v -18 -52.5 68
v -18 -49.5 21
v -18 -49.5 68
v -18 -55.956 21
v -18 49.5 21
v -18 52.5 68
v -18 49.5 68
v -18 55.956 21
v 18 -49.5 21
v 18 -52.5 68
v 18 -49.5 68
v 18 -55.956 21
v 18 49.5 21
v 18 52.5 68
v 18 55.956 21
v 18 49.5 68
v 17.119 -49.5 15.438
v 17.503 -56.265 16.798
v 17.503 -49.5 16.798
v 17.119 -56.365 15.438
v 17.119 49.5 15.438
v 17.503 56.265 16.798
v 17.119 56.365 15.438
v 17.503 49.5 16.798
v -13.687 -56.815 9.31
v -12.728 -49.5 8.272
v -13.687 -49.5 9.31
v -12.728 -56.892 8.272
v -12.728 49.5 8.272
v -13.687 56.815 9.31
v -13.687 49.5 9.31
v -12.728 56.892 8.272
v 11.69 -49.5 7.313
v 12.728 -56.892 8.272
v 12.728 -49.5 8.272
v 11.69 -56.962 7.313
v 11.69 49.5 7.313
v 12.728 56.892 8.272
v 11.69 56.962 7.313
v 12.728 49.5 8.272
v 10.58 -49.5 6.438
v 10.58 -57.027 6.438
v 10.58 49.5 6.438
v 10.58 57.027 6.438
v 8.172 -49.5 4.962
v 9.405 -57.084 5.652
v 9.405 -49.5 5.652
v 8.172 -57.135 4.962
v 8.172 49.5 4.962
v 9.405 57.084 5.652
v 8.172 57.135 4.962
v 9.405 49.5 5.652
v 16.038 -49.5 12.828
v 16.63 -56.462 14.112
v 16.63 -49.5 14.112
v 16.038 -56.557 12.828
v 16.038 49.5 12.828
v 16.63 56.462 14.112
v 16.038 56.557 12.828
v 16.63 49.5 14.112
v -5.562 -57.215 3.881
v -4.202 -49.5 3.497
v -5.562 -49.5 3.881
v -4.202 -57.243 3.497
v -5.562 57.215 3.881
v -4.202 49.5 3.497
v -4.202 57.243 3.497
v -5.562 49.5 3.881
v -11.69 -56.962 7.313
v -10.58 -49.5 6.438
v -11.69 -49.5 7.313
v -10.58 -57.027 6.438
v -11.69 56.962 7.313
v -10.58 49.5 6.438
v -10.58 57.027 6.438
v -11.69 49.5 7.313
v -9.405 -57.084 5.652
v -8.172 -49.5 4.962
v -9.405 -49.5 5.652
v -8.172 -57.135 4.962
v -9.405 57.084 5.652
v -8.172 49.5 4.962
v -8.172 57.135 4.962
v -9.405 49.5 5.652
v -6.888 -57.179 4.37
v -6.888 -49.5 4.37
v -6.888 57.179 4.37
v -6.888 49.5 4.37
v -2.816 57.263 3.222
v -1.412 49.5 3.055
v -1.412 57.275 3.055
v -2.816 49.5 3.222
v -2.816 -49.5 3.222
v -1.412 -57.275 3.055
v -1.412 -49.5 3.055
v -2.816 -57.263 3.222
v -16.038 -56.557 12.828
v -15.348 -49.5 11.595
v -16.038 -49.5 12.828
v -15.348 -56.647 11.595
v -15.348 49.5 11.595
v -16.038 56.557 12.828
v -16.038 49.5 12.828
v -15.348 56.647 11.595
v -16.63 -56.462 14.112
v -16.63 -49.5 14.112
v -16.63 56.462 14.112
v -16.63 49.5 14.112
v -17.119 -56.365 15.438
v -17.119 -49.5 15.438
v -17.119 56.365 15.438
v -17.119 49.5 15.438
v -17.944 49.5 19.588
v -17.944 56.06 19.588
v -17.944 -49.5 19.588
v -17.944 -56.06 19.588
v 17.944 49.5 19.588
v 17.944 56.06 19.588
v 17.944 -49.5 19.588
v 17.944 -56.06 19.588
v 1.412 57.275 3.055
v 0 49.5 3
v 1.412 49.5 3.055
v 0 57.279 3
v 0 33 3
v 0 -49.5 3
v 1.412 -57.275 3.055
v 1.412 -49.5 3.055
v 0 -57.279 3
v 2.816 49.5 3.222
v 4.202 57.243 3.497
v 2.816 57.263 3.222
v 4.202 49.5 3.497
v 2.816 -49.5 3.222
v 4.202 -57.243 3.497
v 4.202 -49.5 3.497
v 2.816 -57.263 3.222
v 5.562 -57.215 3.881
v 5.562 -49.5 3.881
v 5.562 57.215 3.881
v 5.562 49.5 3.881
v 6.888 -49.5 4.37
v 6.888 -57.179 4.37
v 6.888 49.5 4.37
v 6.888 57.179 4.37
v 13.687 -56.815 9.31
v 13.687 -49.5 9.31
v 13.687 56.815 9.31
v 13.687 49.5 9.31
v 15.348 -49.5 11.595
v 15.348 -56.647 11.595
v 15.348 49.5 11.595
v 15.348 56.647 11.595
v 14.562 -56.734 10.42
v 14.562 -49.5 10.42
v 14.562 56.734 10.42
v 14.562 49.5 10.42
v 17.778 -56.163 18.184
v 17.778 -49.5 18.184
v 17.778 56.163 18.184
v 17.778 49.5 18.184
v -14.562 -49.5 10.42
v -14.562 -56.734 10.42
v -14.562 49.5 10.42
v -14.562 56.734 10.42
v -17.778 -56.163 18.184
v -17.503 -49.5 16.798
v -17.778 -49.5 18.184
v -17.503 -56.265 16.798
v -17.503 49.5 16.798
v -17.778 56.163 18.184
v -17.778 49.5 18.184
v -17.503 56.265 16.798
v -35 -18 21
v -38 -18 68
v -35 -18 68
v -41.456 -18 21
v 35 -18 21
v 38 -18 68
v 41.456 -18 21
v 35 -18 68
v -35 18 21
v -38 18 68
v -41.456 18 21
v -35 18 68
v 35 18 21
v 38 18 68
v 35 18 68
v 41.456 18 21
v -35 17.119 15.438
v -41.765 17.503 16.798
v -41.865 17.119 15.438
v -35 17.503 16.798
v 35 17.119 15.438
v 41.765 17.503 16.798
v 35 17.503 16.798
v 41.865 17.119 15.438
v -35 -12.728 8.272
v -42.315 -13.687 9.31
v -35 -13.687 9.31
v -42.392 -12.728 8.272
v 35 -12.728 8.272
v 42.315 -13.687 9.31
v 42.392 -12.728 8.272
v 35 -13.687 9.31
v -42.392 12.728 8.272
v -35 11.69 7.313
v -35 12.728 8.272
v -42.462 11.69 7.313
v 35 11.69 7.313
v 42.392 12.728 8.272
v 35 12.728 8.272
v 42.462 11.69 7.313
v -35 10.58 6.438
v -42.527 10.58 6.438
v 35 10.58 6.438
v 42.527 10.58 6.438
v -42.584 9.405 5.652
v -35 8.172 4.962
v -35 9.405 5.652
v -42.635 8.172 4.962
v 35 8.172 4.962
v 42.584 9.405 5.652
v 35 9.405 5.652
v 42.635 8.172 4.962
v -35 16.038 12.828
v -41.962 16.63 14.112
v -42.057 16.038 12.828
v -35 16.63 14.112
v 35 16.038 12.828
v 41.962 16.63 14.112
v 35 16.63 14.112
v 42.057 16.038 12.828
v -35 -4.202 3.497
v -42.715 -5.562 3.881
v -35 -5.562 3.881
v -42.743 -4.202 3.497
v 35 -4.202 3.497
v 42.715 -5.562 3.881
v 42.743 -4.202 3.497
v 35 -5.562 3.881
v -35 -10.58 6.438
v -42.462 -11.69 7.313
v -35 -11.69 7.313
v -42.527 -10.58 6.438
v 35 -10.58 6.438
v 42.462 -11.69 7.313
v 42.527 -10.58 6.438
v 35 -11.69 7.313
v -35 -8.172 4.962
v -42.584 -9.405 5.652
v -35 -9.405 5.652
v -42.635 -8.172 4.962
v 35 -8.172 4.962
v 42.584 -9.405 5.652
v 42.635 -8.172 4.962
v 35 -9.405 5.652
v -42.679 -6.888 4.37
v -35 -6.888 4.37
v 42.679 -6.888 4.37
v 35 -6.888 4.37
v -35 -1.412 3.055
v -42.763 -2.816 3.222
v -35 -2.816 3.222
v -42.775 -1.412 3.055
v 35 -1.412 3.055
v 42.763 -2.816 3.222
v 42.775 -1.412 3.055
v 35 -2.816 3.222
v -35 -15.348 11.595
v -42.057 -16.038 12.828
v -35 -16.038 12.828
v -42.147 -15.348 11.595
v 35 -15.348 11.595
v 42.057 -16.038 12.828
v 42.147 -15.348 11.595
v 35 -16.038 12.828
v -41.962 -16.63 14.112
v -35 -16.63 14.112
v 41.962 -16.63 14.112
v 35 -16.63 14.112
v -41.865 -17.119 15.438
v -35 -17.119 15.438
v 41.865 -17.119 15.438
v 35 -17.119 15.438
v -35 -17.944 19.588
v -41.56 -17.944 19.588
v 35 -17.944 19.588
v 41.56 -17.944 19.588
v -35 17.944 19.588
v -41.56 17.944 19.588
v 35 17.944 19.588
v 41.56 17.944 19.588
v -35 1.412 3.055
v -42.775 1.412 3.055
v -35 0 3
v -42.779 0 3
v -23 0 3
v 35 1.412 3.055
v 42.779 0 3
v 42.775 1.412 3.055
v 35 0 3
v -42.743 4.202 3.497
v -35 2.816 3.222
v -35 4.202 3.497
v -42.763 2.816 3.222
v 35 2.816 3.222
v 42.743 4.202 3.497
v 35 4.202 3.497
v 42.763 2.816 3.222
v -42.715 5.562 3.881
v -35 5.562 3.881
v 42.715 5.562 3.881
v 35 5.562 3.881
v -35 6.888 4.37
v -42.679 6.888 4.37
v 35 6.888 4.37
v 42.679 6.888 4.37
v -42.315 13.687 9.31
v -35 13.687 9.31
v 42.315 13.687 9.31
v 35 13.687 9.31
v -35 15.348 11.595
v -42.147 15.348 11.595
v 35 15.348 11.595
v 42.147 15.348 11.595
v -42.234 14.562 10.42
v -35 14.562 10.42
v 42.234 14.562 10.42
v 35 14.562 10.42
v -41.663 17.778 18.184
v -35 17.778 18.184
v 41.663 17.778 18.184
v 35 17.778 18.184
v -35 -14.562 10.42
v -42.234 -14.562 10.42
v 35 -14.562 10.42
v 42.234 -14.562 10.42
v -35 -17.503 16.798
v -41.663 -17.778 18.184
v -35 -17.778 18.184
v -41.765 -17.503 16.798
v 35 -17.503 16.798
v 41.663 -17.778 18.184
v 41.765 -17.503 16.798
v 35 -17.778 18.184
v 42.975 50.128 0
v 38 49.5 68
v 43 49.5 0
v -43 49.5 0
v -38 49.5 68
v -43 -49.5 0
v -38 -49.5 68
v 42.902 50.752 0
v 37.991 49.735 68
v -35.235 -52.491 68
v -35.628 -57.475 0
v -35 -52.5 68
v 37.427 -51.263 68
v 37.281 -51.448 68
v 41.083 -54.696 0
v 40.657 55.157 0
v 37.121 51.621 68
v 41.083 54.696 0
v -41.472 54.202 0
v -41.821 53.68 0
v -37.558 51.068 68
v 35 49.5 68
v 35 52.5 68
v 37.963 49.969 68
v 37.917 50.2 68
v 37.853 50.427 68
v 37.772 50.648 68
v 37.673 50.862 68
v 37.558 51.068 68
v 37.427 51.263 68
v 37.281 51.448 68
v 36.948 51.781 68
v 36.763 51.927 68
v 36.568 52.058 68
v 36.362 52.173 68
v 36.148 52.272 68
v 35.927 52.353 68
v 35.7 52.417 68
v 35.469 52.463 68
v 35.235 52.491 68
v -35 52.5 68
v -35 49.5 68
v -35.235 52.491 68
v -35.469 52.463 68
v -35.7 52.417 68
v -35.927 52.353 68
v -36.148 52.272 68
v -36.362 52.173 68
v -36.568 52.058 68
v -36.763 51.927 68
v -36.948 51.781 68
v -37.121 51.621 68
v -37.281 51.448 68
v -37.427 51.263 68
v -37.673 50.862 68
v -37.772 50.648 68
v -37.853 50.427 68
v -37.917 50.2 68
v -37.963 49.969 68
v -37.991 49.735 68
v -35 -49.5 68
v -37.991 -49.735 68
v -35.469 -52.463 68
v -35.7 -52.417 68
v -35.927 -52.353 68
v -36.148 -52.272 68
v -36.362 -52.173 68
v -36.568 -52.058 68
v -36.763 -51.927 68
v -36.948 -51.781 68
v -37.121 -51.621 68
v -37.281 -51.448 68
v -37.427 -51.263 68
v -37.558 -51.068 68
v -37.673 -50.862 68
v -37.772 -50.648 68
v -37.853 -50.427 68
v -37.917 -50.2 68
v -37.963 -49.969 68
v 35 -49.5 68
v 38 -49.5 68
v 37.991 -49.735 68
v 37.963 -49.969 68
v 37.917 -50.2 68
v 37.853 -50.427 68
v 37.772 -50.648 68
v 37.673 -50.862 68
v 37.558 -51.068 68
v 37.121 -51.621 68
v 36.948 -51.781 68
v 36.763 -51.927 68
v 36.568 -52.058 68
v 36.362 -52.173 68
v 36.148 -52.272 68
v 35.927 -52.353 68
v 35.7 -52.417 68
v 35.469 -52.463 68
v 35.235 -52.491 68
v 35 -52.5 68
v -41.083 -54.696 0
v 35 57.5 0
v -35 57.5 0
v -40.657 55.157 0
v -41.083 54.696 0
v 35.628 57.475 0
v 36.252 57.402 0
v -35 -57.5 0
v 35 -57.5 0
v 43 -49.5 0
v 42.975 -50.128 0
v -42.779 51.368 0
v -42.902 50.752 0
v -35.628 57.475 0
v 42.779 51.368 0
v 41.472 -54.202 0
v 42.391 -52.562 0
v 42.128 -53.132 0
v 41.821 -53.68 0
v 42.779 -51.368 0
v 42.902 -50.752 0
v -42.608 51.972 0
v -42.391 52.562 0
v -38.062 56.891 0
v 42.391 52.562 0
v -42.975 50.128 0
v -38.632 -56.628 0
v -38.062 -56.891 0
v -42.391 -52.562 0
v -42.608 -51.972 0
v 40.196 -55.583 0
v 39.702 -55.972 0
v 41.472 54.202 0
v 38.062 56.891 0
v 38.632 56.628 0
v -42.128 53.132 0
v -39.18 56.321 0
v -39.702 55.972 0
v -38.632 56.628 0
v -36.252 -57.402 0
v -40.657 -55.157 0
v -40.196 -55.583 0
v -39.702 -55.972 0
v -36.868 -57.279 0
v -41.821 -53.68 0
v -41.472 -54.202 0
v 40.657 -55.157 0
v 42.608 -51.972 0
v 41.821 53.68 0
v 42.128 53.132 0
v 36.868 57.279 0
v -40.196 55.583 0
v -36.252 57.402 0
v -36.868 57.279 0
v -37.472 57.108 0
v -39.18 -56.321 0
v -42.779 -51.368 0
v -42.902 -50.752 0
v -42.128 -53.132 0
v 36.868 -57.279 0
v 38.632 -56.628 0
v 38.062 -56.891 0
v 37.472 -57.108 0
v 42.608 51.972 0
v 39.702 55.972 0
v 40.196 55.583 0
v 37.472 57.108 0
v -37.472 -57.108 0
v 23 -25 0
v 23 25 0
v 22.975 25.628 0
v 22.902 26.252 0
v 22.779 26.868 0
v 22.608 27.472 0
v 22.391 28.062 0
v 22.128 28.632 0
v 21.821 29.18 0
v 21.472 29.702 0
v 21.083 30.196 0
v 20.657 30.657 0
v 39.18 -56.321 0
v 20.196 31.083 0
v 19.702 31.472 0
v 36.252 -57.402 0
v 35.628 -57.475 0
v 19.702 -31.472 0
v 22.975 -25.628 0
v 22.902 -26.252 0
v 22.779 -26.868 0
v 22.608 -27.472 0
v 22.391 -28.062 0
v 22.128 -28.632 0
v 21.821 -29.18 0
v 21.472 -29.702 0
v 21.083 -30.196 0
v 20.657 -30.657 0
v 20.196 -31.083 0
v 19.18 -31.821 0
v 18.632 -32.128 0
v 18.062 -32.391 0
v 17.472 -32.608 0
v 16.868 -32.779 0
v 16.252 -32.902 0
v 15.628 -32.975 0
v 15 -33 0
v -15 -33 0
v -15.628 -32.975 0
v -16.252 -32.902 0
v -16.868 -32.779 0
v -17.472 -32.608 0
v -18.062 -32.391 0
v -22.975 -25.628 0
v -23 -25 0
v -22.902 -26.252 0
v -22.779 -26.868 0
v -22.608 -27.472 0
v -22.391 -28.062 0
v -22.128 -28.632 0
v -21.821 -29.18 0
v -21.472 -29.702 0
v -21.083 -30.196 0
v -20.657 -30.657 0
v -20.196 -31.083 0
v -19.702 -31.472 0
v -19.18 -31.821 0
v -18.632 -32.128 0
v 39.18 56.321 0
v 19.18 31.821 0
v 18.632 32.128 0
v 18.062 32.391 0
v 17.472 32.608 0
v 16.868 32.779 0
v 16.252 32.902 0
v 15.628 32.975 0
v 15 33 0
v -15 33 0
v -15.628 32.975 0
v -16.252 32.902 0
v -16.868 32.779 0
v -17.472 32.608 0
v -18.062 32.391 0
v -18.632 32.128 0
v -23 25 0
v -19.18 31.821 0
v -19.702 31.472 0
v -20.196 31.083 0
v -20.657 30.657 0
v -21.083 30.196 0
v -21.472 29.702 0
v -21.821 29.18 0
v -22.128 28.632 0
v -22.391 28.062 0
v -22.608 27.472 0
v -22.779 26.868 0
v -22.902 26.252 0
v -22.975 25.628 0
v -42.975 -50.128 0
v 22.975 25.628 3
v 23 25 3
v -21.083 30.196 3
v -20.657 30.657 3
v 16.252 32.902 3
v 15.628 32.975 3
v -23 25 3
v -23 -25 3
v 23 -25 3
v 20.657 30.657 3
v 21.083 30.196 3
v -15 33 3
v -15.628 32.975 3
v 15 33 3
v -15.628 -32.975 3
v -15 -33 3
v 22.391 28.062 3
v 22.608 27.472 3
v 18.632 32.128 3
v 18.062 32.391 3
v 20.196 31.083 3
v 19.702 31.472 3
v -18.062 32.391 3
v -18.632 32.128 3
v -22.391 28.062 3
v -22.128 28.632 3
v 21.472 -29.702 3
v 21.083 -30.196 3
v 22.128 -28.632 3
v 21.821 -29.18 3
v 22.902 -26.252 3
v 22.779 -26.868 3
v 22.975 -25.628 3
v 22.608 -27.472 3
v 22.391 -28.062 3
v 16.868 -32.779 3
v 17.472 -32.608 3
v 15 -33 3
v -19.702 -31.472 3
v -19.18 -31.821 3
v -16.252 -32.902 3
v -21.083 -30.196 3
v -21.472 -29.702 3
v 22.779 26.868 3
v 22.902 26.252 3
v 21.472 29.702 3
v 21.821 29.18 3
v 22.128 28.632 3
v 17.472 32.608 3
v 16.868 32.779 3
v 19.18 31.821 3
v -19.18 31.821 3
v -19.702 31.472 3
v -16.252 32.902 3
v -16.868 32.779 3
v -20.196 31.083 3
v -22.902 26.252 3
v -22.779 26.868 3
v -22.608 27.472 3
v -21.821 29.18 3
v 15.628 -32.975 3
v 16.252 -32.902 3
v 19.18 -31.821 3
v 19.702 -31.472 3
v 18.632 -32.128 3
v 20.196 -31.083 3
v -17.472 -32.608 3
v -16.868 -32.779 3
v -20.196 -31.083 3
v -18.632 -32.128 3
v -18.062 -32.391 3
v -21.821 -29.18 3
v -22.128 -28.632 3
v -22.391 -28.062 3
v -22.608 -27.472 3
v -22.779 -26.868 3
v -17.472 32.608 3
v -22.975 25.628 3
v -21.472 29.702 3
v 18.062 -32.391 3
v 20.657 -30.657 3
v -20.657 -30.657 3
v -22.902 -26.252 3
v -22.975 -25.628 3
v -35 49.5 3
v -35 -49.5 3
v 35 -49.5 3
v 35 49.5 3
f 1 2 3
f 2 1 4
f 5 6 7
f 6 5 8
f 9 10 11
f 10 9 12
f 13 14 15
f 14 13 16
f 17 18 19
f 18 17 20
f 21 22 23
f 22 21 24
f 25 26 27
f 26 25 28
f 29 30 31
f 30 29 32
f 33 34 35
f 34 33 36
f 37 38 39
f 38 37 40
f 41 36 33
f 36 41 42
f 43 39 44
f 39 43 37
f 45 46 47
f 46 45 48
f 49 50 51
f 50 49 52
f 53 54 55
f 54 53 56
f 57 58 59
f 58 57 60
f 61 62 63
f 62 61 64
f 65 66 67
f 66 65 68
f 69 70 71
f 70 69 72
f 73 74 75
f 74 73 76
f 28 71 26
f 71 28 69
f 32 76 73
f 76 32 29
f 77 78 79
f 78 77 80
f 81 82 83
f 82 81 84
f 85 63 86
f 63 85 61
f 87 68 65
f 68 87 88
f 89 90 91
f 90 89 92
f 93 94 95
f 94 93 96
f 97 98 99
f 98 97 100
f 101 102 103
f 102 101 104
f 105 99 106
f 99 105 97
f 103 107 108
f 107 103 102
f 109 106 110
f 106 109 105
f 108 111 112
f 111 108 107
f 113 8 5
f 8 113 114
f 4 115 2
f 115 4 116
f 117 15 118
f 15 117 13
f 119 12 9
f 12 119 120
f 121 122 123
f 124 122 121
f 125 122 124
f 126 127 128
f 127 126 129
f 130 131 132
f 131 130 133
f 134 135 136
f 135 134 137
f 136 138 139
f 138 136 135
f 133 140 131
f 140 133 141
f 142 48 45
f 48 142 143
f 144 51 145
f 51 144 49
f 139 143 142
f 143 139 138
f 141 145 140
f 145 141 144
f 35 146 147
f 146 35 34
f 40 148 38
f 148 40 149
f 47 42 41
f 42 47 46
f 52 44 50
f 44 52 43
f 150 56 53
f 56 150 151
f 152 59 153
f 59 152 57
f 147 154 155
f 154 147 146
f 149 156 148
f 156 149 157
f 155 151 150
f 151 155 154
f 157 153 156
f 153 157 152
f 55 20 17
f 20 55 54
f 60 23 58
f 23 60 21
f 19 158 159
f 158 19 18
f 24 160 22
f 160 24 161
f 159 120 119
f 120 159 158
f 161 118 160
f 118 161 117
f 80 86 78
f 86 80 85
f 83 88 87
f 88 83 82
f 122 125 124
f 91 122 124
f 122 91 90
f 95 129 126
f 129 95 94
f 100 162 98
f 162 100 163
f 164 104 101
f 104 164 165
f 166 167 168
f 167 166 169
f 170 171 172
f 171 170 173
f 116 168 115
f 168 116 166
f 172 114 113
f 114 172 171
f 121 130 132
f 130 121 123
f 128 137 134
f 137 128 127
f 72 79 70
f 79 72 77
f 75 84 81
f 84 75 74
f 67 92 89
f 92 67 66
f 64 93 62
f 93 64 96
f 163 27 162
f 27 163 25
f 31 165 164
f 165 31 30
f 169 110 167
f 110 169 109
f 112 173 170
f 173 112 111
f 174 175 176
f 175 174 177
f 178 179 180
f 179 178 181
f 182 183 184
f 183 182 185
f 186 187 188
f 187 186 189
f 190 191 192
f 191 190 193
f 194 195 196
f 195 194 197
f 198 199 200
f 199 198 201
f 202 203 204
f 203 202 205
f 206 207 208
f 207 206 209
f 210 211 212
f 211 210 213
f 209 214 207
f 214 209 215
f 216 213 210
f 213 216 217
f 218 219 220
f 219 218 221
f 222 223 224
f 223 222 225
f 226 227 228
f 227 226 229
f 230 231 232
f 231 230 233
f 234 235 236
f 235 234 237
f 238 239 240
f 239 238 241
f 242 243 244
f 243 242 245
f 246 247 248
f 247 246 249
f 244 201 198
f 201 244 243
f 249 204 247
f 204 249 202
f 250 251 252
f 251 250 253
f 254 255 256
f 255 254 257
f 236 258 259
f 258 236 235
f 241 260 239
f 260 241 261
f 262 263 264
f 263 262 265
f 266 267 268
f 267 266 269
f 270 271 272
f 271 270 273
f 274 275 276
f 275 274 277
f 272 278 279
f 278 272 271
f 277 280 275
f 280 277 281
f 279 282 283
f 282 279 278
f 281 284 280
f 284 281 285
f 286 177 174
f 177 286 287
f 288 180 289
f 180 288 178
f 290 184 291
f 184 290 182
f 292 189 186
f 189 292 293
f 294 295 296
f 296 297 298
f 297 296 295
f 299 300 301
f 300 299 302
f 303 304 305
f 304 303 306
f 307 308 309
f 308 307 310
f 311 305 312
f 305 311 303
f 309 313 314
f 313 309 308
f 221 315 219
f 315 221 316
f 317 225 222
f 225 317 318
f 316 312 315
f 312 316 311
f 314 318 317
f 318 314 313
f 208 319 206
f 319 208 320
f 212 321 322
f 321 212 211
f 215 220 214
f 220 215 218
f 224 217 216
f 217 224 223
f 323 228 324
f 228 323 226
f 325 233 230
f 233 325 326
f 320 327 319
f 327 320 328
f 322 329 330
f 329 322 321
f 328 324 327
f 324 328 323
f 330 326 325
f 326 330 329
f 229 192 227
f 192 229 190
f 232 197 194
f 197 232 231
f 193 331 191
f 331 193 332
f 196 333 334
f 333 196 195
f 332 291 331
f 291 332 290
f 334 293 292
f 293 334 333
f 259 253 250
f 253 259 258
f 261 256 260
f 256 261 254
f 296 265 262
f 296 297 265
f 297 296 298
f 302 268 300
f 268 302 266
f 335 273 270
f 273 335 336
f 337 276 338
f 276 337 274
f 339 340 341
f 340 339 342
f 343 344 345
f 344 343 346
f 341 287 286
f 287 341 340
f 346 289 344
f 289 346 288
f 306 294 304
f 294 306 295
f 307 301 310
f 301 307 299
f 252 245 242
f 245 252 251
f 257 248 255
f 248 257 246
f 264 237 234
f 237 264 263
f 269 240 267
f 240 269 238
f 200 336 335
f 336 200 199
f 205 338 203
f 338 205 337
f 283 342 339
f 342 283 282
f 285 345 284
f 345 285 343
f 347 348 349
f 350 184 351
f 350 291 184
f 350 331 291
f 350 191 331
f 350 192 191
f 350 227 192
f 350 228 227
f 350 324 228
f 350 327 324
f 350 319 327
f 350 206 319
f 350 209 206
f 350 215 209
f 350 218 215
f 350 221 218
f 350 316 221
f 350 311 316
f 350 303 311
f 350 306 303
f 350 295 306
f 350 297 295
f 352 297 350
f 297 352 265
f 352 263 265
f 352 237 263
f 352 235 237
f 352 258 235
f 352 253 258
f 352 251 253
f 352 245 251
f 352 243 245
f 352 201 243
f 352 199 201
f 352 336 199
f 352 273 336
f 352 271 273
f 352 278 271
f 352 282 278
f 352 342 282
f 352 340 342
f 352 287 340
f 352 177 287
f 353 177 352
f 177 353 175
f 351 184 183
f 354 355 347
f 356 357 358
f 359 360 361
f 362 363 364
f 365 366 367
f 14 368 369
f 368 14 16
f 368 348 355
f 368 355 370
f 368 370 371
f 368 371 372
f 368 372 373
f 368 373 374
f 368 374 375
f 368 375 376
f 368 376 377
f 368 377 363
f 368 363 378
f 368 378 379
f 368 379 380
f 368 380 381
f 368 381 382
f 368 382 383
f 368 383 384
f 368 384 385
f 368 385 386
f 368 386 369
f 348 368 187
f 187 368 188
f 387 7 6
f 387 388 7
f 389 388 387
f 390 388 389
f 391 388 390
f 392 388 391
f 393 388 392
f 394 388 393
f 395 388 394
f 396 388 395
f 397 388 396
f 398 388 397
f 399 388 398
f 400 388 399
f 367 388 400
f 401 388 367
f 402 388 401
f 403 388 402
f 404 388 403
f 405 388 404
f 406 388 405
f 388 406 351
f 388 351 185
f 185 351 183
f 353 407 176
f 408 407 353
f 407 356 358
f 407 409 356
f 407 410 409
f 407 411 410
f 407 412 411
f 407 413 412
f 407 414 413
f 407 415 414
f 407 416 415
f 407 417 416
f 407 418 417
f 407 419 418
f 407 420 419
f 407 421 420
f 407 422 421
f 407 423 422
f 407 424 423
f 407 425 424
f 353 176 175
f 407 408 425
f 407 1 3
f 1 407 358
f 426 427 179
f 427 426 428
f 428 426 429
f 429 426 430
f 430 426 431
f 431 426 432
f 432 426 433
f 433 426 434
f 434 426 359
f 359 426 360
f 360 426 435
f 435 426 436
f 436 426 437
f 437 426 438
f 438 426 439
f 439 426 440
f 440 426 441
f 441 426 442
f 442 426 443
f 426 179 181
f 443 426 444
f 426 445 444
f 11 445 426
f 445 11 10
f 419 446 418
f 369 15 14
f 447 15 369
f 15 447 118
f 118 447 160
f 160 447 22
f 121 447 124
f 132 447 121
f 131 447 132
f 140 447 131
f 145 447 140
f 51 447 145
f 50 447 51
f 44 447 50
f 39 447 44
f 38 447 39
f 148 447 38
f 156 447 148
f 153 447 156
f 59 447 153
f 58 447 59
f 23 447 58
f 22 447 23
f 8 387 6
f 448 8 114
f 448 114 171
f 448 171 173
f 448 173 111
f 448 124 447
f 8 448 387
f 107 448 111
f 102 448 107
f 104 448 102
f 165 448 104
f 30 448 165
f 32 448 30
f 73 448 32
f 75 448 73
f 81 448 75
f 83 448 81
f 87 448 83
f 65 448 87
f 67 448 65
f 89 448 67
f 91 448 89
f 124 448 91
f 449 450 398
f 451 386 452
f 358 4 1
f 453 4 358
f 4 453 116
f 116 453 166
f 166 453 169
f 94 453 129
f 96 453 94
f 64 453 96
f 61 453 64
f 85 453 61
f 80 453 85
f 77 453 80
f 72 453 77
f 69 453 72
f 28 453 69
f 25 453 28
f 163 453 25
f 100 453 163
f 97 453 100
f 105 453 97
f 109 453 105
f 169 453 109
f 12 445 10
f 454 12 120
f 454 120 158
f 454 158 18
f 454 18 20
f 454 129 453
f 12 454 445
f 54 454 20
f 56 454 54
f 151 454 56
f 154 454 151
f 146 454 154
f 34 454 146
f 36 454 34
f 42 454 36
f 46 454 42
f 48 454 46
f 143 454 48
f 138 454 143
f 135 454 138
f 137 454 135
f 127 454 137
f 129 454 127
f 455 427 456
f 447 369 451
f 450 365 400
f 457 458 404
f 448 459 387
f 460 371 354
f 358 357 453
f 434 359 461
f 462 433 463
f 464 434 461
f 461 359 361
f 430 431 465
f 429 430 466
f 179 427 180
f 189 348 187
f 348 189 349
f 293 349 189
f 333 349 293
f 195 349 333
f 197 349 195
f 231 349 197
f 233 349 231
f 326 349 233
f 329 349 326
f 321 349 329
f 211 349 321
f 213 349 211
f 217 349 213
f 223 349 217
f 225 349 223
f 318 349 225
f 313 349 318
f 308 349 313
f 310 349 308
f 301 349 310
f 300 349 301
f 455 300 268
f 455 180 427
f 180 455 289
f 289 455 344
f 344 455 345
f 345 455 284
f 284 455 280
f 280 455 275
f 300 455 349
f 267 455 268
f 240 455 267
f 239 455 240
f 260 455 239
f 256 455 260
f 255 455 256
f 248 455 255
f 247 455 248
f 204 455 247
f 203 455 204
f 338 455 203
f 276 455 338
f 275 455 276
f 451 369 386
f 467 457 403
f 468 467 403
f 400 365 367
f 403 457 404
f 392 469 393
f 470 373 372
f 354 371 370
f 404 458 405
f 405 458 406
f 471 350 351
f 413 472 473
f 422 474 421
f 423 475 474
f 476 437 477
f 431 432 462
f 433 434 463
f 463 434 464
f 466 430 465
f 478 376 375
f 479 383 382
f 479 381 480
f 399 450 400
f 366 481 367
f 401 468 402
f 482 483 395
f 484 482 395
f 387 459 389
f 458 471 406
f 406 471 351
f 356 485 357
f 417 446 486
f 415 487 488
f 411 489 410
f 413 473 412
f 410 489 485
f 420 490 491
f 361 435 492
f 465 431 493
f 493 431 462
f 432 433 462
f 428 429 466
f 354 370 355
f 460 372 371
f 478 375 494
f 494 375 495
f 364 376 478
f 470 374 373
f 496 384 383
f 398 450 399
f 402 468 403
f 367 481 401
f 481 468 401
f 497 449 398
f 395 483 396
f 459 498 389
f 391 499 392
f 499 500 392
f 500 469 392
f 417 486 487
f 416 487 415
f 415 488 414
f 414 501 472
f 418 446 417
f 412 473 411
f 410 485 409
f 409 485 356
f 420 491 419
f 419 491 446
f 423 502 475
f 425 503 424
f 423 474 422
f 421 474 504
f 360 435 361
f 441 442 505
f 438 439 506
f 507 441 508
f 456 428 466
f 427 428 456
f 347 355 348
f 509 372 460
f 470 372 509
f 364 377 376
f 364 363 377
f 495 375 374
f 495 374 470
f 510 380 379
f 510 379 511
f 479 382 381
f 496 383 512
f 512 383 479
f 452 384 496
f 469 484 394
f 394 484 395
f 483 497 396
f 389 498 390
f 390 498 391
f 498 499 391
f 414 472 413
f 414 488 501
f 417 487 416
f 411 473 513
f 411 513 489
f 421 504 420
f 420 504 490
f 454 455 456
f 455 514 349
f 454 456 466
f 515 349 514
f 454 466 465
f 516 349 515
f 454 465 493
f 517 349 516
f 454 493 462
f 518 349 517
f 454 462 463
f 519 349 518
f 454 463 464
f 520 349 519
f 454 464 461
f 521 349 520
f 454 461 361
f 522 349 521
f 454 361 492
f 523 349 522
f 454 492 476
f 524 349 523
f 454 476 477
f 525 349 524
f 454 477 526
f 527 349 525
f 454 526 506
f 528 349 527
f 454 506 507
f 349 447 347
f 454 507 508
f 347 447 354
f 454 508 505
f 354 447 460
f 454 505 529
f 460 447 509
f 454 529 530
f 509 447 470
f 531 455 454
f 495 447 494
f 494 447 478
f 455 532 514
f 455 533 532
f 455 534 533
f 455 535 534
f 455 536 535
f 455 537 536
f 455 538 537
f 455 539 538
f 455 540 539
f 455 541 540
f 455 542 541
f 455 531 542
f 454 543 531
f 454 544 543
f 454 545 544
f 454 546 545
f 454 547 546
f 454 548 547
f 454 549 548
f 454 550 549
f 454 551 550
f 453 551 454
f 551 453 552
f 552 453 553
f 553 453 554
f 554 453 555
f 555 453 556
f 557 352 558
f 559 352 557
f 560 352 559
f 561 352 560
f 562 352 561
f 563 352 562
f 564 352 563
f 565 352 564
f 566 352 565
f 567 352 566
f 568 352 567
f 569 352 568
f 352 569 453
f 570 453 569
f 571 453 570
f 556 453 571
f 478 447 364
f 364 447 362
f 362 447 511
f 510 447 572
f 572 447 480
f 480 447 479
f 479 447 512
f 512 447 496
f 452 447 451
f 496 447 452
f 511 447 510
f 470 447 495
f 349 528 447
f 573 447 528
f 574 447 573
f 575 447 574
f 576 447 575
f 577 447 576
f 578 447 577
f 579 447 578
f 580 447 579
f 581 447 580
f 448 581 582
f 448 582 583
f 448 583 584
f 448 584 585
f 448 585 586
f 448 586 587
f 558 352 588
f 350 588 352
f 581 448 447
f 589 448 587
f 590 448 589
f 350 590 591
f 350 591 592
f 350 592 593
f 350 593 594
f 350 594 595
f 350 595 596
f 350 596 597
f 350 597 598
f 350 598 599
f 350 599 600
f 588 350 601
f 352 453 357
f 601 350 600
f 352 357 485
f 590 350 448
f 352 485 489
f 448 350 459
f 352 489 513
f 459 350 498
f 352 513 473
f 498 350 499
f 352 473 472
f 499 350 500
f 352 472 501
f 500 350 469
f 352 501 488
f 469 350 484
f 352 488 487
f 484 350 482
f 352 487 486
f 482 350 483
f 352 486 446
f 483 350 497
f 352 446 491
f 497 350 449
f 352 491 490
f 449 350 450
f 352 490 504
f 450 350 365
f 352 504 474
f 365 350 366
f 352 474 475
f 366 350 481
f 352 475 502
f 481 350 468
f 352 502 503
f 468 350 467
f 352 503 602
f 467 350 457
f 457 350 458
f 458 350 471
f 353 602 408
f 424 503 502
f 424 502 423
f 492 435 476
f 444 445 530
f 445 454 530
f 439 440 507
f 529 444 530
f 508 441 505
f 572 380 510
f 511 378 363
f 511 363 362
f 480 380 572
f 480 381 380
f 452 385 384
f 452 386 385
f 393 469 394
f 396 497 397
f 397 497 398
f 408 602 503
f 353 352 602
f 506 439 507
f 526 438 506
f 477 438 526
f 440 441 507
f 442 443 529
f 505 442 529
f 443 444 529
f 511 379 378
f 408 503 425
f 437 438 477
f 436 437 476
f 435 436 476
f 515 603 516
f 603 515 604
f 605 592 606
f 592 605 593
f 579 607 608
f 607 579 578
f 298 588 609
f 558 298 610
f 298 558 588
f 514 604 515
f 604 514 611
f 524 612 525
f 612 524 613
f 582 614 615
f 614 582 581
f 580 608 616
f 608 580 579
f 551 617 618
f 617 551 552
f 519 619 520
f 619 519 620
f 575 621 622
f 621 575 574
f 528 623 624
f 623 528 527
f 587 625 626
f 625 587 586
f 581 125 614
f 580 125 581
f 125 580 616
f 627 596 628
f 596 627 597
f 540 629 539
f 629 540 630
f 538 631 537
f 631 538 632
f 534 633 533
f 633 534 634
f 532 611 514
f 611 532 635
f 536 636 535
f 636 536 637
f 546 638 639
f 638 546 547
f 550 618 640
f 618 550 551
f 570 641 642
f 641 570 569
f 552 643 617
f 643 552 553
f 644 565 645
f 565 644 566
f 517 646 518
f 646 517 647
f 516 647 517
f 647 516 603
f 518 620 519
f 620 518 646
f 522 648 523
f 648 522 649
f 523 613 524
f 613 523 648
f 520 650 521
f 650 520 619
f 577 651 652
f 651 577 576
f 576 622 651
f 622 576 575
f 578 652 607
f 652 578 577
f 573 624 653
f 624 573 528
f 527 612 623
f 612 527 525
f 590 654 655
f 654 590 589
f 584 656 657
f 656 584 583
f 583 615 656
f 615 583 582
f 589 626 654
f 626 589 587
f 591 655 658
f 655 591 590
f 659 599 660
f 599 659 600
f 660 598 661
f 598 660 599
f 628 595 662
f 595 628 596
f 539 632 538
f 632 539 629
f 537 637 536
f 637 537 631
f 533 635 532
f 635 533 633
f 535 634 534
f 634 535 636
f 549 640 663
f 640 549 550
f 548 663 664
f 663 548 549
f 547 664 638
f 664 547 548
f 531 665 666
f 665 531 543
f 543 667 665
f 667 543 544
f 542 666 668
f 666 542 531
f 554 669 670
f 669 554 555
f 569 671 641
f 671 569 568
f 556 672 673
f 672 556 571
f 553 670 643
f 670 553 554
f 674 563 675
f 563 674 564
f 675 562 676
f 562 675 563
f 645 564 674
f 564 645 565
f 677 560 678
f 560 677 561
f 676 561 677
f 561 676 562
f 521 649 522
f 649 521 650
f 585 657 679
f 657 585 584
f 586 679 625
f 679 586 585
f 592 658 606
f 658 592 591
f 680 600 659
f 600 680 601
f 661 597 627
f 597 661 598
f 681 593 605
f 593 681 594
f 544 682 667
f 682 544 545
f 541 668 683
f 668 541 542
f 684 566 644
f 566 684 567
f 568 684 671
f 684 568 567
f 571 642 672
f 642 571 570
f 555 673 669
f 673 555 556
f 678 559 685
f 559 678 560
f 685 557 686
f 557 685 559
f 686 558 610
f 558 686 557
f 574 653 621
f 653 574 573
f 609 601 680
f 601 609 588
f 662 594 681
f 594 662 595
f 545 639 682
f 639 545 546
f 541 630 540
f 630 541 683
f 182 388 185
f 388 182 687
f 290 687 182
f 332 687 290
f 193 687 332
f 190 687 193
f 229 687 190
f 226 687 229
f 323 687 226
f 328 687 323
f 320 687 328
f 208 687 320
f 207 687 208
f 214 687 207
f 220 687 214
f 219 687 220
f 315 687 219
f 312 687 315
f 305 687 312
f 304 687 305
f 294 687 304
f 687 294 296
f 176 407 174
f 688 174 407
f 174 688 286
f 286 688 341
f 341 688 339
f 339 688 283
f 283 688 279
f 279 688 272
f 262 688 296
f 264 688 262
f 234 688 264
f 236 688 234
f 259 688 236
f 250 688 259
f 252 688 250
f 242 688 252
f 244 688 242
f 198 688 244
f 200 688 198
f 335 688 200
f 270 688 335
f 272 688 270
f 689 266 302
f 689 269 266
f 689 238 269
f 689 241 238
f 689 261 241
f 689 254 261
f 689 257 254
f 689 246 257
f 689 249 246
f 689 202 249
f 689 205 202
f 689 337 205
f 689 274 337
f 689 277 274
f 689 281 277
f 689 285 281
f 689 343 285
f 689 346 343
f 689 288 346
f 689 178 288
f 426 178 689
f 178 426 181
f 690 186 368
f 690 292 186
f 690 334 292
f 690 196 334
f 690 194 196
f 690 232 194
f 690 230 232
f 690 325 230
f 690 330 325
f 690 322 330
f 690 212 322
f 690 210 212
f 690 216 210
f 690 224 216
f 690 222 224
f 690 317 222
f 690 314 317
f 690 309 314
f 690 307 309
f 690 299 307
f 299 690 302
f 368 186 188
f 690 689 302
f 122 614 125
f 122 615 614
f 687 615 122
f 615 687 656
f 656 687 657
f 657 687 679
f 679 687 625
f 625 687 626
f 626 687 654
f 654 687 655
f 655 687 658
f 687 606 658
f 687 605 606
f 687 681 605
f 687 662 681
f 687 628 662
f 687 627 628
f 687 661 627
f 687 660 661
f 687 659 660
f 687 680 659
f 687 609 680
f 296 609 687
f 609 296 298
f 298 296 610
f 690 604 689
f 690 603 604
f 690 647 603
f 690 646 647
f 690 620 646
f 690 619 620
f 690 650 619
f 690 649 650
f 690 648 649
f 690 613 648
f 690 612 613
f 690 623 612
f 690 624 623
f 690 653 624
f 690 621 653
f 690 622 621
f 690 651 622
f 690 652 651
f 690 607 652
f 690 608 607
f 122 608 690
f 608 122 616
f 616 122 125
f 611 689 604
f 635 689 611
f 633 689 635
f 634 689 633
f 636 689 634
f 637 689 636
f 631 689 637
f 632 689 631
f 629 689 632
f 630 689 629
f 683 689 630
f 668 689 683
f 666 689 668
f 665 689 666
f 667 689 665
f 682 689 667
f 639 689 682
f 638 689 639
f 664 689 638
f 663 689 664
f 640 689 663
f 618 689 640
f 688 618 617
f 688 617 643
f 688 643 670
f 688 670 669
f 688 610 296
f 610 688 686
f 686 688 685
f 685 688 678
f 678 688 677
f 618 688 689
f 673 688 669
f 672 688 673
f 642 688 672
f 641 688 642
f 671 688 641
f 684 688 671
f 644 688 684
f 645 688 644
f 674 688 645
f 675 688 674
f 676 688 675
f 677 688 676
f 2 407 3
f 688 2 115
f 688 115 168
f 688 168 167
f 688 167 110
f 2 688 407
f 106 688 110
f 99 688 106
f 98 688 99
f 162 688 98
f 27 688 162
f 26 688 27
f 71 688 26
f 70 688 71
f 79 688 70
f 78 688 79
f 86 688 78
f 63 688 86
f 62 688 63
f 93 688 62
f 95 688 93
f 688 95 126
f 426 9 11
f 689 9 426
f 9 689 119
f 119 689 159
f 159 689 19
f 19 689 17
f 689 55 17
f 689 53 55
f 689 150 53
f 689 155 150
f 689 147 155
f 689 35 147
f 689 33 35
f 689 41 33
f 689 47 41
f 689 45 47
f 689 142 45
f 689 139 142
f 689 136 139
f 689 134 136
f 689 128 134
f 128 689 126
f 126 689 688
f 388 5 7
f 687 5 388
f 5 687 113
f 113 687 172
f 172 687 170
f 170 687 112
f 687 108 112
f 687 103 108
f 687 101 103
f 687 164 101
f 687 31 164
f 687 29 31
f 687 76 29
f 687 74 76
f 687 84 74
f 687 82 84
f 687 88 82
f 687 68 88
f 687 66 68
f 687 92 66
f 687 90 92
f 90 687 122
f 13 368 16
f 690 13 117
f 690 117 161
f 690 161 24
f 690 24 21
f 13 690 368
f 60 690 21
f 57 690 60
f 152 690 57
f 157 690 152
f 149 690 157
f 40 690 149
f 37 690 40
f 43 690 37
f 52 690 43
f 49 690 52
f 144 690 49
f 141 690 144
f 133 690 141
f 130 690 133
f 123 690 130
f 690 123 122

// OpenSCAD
$fn=80;

difference() {
   hull() for (i=[0:3]) {
      translate([(floor(i / 2)) ? 70/2 : -70/2, (i % 2) ? 99/2 : -99/2, 0])
          cylinder(r1=8,r2=3,h=68);
   }

   /* bottom cutout */
   hull() for (i=[0:3]) {
      translate([(floor(i / 2)) ? 30/2 : -30/2, (i % 2) ? 50/2 : -50/2, 0])
          translate([0,0,-1]) cylinder(r=8,h=5);
   }

   /* card space */
   translate([0,0,53]) cube([70,99,100], center=true);

   /* space for fingers to access */
   translate([0,0,18+3]) rotate([90,0,0]) cutout();
   translate([0,0,18+3]) rotate([0,0,90]) rotate([90,0,0]) cutout();
}


module cutout() {
   translate([0,30,0]) cube([36,60,140],center=true);
   translate([0,0,-70]) cylinder(r=18,h=140);
}
